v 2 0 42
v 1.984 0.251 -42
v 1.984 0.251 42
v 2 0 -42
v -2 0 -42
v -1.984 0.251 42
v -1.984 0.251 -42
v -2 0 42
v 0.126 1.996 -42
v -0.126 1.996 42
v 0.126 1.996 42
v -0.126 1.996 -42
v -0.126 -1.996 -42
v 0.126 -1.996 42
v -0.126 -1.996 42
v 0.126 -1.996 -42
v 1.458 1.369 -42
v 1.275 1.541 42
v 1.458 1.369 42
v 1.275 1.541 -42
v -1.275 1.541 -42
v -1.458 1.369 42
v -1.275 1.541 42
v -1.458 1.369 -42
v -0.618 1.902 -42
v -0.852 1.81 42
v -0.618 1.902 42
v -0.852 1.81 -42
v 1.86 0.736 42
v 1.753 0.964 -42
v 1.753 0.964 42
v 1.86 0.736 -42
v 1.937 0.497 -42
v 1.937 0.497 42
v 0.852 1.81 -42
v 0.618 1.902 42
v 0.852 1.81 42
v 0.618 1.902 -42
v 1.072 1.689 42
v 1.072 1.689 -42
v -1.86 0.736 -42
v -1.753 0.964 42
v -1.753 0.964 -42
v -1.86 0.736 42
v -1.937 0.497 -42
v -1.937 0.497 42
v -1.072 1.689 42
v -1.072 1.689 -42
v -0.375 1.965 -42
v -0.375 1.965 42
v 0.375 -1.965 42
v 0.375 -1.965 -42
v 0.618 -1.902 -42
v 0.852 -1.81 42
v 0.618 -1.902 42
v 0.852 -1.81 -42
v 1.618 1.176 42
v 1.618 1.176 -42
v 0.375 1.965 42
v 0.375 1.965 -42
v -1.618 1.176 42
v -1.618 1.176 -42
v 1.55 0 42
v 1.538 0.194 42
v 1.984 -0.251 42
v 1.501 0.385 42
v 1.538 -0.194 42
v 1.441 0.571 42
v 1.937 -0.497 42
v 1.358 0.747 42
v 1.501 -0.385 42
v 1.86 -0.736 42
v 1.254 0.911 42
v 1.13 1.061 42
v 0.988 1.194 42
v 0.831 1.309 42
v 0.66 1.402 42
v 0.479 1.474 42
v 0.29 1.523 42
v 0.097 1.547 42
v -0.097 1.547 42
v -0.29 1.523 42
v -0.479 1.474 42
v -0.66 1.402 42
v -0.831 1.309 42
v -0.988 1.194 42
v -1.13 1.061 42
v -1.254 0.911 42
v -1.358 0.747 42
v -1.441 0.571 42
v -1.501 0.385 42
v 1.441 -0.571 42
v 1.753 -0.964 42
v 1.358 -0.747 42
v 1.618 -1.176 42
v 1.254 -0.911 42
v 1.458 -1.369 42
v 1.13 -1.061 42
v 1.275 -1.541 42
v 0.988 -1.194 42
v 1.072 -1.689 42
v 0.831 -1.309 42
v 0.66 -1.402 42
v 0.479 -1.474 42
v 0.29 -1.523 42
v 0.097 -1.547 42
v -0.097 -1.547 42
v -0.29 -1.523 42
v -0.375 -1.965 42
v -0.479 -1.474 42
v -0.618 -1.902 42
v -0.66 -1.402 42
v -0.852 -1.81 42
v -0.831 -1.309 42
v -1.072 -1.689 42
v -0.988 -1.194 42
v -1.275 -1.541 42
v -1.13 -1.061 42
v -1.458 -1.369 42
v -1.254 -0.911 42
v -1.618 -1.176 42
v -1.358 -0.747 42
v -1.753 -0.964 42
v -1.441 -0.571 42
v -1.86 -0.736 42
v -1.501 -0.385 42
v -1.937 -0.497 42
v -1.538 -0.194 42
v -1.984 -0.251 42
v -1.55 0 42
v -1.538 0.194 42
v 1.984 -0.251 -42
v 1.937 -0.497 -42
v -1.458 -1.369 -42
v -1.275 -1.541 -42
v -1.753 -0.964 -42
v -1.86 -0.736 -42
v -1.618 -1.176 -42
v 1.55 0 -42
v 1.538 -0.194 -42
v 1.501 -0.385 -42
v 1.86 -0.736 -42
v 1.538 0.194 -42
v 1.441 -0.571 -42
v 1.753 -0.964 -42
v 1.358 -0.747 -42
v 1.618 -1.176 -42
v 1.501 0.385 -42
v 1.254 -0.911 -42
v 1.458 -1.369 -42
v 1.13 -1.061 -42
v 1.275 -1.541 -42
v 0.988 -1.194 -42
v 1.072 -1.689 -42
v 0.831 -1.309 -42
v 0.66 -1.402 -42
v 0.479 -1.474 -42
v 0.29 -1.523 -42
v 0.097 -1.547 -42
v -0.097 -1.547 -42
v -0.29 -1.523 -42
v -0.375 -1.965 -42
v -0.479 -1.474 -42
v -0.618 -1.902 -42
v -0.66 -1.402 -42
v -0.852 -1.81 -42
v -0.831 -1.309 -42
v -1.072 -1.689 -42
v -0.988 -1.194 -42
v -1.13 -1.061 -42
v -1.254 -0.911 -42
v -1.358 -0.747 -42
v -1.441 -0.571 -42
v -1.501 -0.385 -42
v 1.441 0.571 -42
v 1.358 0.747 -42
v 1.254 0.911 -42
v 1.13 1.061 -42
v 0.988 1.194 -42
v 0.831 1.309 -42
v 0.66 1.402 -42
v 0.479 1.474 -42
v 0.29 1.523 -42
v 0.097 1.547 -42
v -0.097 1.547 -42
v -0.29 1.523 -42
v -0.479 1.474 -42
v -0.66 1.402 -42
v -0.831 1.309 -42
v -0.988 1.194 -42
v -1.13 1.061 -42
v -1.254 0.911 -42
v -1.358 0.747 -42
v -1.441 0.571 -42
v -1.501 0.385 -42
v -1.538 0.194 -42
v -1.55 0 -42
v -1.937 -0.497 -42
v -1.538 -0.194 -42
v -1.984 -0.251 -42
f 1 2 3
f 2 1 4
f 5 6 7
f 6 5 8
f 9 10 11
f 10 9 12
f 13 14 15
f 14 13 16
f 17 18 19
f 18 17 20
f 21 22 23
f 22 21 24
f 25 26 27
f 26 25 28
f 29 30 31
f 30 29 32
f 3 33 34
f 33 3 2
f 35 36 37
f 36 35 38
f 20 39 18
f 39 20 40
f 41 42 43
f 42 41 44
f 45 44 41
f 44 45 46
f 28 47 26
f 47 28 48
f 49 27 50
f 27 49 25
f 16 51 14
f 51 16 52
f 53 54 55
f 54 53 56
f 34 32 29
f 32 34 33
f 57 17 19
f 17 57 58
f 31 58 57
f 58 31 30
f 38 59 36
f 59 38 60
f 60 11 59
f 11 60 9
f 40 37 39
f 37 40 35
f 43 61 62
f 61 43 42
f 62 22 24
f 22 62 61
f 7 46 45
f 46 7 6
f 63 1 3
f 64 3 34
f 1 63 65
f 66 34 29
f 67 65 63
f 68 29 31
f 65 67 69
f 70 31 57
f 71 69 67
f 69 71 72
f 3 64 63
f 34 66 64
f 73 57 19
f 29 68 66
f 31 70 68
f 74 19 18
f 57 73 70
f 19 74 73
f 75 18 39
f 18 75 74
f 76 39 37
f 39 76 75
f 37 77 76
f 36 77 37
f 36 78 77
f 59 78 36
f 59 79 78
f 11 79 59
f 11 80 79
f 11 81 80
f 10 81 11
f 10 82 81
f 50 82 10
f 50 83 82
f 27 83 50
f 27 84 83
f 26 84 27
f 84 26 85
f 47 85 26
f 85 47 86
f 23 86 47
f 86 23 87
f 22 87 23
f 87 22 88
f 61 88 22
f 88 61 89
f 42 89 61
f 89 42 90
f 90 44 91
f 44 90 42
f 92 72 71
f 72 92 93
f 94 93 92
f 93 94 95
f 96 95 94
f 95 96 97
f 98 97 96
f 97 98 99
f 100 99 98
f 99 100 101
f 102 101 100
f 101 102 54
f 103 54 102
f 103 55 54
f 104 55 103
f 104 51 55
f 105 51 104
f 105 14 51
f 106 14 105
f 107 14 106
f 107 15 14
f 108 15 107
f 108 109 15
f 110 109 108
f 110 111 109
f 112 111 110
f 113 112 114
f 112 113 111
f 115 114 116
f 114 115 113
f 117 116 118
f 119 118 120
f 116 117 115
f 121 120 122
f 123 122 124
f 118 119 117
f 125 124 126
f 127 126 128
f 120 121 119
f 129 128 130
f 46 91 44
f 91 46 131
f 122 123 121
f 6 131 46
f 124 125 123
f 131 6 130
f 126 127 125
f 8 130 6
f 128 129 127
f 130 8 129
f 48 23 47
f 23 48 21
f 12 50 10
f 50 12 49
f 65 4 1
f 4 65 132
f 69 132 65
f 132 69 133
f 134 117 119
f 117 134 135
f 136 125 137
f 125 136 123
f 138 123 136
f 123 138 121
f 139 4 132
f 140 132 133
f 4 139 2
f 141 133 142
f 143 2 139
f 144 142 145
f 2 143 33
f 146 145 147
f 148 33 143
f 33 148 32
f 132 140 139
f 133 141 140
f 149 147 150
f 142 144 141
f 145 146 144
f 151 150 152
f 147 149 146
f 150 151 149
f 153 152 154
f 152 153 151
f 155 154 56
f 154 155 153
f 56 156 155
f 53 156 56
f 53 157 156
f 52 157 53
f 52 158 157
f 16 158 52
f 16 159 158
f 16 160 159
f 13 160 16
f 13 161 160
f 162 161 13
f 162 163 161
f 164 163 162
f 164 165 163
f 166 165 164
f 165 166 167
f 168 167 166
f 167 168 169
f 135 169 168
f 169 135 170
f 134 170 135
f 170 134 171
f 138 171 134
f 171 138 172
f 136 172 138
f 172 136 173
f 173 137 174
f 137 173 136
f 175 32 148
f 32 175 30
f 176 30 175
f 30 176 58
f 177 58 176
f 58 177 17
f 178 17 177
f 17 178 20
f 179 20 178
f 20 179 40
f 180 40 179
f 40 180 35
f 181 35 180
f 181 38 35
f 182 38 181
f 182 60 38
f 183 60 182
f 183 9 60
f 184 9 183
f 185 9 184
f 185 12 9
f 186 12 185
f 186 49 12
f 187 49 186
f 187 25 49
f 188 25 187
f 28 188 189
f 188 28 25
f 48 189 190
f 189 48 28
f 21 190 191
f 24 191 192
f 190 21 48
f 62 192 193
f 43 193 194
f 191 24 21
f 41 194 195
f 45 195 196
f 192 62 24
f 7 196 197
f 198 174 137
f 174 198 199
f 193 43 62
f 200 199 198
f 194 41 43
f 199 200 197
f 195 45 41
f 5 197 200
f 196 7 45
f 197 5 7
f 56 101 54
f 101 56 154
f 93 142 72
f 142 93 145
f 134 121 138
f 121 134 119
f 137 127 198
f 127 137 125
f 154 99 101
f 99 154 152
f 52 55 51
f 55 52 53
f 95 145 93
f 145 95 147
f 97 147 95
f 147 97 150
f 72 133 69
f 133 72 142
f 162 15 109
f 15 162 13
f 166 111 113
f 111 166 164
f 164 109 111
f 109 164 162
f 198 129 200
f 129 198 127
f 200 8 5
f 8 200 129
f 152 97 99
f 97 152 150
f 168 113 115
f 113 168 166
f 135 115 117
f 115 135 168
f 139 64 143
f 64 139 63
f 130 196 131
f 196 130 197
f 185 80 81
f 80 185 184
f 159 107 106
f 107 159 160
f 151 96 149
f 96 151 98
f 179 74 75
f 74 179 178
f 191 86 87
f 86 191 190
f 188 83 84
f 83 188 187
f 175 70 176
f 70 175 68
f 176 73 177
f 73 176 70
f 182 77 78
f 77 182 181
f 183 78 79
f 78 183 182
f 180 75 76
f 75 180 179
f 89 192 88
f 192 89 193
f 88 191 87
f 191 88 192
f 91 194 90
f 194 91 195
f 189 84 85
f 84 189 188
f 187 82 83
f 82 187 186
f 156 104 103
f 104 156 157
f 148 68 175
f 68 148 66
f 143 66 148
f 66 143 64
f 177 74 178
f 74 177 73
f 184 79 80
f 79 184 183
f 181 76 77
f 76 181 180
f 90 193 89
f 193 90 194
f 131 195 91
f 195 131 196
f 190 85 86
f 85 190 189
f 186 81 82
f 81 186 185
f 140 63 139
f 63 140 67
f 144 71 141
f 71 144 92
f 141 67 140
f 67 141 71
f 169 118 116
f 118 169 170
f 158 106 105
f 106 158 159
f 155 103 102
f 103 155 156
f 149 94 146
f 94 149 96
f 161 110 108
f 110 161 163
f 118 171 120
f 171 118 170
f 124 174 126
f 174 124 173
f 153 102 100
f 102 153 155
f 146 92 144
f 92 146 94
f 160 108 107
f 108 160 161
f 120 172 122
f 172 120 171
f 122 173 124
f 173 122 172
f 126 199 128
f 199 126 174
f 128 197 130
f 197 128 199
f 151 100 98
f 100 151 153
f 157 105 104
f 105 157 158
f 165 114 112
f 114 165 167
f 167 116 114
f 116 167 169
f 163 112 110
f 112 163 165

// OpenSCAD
$fn = 50;


difference() {
	union() {
		translate(v = [0, 0, -42.0000000000]) {
			cylinder(h = 84, r = 2.0000000000);
		}
	}
	union() {
		translate(v = [0, 0, -100.0000000000]) {
			cylinder(h = 200, r = 1.5500000000);
		}
	}
}
